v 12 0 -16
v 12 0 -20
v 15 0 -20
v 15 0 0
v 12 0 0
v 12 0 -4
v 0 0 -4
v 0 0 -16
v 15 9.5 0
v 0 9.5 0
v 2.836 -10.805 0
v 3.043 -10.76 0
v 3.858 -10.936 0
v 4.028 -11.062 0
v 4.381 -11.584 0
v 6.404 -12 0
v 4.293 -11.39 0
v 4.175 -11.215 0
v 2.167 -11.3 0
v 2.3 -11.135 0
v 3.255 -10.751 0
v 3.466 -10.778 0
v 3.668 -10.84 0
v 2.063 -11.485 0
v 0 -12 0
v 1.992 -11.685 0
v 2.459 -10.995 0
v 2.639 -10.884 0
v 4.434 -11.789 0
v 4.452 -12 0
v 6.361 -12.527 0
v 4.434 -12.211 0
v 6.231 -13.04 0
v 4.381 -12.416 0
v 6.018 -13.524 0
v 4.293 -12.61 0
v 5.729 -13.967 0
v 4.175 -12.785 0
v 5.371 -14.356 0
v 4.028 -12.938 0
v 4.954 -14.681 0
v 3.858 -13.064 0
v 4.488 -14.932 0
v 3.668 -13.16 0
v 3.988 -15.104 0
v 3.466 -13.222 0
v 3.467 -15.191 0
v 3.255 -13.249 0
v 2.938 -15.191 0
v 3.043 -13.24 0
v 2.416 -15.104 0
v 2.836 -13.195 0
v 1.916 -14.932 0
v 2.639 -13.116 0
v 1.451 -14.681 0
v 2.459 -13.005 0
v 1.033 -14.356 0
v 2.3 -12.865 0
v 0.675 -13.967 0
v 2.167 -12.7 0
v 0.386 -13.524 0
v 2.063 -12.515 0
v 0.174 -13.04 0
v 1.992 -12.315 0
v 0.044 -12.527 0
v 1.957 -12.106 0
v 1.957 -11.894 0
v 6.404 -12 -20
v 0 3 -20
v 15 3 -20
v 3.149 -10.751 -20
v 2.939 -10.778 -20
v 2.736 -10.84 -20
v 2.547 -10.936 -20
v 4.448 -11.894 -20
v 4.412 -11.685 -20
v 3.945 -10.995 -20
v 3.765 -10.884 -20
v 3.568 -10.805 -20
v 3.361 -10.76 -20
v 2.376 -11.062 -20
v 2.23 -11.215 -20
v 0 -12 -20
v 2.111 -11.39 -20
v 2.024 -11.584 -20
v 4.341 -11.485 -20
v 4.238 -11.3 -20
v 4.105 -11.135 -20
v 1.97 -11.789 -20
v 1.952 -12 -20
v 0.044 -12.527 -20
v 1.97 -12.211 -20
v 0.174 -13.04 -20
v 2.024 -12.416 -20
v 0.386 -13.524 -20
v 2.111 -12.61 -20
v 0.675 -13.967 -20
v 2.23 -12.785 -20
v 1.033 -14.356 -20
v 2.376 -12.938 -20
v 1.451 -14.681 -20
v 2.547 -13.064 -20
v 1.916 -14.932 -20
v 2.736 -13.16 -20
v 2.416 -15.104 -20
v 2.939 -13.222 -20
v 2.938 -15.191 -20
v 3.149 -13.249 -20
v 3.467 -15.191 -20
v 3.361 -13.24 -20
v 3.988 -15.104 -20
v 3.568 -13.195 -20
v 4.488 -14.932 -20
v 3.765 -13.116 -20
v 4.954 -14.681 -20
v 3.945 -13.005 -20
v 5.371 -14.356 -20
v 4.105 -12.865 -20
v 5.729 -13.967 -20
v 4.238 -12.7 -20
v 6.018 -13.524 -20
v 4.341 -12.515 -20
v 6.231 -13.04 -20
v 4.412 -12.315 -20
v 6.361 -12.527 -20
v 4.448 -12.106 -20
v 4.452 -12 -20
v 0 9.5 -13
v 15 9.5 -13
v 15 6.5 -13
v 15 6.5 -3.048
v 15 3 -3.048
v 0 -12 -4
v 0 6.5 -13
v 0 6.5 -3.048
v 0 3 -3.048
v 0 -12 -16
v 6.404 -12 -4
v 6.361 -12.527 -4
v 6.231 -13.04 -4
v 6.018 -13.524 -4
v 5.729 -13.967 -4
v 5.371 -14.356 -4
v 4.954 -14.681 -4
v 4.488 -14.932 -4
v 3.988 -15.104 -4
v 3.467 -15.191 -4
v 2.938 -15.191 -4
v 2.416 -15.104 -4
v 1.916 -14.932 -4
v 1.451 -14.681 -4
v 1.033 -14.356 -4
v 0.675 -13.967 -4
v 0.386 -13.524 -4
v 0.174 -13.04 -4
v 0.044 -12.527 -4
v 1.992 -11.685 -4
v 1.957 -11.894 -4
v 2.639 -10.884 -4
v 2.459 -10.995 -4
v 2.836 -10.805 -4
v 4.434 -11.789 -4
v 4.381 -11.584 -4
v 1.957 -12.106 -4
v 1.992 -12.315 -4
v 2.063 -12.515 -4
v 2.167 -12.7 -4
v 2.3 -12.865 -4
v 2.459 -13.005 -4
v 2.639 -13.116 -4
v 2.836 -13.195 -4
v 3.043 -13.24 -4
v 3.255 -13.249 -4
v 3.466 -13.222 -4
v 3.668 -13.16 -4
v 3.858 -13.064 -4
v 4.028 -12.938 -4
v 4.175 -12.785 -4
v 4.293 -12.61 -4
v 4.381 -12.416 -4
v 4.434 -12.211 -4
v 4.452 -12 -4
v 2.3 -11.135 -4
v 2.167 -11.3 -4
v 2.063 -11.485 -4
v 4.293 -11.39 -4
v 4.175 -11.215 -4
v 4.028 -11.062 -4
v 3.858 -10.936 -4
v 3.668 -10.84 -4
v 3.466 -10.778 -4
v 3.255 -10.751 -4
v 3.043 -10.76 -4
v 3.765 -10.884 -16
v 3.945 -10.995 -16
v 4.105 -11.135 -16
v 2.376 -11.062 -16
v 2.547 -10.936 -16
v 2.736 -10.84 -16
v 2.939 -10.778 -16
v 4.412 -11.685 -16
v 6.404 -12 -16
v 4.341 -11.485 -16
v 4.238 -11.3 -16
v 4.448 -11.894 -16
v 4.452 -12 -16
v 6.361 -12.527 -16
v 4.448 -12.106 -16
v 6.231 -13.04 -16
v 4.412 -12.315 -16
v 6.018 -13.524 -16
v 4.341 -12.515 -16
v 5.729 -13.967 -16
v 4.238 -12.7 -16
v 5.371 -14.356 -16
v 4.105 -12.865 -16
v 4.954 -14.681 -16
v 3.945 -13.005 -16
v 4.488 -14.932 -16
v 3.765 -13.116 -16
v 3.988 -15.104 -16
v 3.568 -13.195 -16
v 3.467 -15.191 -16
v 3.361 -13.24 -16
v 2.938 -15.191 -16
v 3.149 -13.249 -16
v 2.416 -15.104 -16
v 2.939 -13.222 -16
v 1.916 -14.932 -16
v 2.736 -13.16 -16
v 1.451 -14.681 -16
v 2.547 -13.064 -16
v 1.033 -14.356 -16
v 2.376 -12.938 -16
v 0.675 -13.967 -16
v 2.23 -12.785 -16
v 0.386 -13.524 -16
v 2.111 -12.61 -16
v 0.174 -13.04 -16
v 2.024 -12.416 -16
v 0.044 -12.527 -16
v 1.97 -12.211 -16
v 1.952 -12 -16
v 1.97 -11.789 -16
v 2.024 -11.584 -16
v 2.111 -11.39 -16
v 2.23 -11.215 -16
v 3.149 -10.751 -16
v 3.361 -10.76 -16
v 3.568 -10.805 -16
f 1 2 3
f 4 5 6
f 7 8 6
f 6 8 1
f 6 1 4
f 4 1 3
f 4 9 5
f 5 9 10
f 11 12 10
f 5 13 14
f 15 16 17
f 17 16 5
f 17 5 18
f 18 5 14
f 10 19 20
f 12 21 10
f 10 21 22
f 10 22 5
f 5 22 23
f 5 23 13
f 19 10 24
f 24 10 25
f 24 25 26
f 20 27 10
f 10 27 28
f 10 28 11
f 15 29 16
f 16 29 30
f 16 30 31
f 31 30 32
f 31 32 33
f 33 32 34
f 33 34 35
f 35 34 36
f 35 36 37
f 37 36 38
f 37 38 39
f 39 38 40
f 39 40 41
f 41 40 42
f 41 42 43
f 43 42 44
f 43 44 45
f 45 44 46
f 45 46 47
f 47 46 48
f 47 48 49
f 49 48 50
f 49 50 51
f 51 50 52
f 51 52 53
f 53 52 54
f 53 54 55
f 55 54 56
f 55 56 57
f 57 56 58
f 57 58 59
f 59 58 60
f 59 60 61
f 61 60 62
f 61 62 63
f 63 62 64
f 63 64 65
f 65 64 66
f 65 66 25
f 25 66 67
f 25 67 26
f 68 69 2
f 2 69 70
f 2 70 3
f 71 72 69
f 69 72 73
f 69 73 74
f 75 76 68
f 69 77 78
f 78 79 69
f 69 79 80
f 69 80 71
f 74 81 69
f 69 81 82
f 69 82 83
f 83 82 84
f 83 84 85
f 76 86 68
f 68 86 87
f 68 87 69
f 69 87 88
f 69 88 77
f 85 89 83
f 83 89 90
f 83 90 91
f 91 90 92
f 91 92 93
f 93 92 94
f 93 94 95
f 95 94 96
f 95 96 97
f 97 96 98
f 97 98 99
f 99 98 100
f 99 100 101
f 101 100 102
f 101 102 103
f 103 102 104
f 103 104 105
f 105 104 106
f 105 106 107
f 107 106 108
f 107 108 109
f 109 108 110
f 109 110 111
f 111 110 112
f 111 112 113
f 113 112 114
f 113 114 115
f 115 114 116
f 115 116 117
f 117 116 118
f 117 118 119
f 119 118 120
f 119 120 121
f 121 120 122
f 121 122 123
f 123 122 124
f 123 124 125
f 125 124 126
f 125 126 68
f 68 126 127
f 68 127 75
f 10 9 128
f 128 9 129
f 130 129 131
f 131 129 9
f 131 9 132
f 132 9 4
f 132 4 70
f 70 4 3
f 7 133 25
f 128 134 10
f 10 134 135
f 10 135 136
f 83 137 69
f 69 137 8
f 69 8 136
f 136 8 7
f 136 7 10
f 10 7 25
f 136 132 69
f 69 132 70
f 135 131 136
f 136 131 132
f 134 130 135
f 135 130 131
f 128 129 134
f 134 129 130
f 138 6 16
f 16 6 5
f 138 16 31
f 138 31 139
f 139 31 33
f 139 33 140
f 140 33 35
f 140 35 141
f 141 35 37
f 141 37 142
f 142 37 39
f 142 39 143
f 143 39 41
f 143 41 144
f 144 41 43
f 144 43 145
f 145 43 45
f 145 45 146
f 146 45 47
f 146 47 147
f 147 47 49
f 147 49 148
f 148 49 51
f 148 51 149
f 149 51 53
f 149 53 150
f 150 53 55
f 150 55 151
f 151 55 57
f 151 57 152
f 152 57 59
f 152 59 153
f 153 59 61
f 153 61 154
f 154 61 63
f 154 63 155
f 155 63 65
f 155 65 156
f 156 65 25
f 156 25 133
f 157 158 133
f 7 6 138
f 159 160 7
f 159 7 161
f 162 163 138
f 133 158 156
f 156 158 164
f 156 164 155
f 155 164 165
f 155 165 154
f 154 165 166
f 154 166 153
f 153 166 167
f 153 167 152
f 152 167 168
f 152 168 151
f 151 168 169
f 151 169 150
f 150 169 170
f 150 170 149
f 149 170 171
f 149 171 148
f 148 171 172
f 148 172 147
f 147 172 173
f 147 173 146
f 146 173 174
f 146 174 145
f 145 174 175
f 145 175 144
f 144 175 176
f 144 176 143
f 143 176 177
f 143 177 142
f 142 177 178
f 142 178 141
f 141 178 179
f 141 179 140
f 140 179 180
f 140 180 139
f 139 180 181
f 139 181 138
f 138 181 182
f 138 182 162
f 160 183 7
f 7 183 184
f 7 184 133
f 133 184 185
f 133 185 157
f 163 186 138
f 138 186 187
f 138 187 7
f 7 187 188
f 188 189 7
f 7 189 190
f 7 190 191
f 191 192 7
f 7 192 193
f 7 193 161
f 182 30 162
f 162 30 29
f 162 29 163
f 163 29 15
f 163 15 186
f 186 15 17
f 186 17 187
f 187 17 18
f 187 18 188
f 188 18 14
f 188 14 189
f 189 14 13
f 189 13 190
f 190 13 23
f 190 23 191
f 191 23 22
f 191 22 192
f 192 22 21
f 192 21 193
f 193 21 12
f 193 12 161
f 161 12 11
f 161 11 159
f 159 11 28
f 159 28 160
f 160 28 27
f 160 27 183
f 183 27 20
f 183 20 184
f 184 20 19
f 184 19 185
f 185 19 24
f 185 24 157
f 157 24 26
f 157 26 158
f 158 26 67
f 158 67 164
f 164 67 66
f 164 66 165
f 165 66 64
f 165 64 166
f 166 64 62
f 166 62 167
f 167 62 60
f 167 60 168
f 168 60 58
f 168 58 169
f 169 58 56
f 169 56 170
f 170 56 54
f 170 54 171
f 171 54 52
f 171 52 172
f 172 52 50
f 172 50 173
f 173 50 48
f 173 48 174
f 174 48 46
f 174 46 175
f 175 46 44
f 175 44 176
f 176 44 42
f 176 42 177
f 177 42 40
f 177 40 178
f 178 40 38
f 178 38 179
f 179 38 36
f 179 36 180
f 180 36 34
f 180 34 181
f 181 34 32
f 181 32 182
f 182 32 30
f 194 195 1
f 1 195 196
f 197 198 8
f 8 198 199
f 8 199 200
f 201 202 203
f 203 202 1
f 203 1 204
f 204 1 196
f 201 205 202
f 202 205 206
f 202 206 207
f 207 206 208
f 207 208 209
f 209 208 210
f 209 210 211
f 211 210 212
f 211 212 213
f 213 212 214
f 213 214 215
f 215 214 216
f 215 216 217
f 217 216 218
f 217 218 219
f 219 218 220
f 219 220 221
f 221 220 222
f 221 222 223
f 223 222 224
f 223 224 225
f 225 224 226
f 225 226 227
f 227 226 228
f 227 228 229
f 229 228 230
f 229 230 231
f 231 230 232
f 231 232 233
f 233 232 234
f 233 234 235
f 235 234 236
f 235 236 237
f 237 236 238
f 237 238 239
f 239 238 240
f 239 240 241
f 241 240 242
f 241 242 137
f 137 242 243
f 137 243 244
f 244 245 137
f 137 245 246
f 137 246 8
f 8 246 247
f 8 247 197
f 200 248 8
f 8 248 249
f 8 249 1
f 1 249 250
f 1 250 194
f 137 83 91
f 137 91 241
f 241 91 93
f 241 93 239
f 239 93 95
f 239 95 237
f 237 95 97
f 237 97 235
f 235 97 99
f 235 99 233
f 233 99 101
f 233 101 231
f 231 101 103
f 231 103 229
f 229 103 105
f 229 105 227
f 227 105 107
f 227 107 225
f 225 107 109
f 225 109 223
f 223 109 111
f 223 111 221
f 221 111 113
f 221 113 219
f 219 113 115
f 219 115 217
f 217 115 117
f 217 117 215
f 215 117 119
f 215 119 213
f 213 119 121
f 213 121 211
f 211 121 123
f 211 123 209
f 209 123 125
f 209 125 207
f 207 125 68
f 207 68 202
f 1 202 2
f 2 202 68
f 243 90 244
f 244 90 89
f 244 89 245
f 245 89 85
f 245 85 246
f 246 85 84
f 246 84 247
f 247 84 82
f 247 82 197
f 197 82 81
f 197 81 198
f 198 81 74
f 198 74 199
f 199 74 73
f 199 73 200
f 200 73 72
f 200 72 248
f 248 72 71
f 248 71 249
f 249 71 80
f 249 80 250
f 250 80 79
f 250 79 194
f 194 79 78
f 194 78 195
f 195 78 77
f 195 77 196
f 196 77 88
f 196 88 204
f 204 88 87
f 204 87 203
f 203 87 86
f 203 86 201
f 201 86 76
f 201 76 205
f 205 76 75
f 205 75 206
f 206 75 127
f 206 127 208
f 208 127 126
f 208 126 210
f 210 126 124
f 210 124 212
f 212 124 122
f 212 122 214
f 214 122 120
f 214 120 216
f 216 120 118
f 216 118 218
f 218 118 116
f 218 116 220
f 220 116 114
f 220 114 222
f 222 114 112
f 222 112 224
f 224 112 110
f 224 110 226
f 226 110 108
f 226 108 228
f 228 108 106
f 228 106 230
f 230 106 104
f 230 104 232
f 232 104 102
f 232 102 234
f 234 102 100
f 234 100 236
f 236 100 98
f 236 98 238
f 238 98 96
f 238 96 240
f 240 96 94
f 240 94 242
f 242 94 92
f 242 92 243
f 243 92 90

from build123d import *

# Parameters (mm, degrees)
SKETCH1_W               = 20
SKETCH1_H               = 9.5
BOSS_EXTRUDE1_DEPTH     = 15
CUT_EXTRUDE1_DEPTH      = 27.744158241
CUT_EXTRUDE1_DEPTH_BACK = 27.744158241
SKETCH4_R               = 1.25
BOSS_EXTRUDE3_DEPTH     = 4


with BuildPart() as part:
    # Sketch1 → Boss-Extrude1 (new body)
    with BuildSketch(Plane(origin=(0, 0, 0), x_dir=(0, 0, -1), z_dir=(1, 0, 0))):
        with Locations((10, 4.75)):
            Rectangle(SKETCH1_W, SKETCH1_H)
    extrude(amount=BOSS_EXTRUDE1_DEPTH)

    # Sketch2 → Cut-Extrude1 (cut, two sides: drawn at the far end of the back side and taken through both)
    with BuildSketch(Plane(origin=(15, 0, 0), x_dir=(0, 0, -1), z_dir=(1, 0, 0)).offset(-CUT_EXTRUDE1_DEPTH_BACK)):
        Polygon((20, 3), (3.047520991, 3), (3.047520991, 6.5), (13, 6.5), (13, 9.5), (20, 9.5), (20, 6.3375), align=None)
    extrude(amount=CUT_EXTRUDE1_DEPTH + CUT_EXTRUDE1_DEPTH_BACK, mode=Mode.SUBTRACT)

    # Sketch4 → Boss-Extrude3 (add)
    with BuildSketch(Plane.XY):
        with BuildLine():
            Line((0, 0), (0, -12))
            ThreePointArc((0, -12), (3.202154051, -15.202154051), (6.404308102, -12))
            Line((6.404308102, -12), (12, 0))
            Line((12, 0), (0, 0))
        make_face()
        with Locations((3.202154051, -12)):
            Circle(SKETCH4_R, mode=Mode.SUBTRACT)
    boss_extrude3 = extrude(amount=-BOSS_EXTRUDE3_DEPTH)

    # Mirror1: Boss-Extrude3 across plane
    add(boss_extrude3.mirror(Plane.XY.offset(-10)))


solid = part.part
